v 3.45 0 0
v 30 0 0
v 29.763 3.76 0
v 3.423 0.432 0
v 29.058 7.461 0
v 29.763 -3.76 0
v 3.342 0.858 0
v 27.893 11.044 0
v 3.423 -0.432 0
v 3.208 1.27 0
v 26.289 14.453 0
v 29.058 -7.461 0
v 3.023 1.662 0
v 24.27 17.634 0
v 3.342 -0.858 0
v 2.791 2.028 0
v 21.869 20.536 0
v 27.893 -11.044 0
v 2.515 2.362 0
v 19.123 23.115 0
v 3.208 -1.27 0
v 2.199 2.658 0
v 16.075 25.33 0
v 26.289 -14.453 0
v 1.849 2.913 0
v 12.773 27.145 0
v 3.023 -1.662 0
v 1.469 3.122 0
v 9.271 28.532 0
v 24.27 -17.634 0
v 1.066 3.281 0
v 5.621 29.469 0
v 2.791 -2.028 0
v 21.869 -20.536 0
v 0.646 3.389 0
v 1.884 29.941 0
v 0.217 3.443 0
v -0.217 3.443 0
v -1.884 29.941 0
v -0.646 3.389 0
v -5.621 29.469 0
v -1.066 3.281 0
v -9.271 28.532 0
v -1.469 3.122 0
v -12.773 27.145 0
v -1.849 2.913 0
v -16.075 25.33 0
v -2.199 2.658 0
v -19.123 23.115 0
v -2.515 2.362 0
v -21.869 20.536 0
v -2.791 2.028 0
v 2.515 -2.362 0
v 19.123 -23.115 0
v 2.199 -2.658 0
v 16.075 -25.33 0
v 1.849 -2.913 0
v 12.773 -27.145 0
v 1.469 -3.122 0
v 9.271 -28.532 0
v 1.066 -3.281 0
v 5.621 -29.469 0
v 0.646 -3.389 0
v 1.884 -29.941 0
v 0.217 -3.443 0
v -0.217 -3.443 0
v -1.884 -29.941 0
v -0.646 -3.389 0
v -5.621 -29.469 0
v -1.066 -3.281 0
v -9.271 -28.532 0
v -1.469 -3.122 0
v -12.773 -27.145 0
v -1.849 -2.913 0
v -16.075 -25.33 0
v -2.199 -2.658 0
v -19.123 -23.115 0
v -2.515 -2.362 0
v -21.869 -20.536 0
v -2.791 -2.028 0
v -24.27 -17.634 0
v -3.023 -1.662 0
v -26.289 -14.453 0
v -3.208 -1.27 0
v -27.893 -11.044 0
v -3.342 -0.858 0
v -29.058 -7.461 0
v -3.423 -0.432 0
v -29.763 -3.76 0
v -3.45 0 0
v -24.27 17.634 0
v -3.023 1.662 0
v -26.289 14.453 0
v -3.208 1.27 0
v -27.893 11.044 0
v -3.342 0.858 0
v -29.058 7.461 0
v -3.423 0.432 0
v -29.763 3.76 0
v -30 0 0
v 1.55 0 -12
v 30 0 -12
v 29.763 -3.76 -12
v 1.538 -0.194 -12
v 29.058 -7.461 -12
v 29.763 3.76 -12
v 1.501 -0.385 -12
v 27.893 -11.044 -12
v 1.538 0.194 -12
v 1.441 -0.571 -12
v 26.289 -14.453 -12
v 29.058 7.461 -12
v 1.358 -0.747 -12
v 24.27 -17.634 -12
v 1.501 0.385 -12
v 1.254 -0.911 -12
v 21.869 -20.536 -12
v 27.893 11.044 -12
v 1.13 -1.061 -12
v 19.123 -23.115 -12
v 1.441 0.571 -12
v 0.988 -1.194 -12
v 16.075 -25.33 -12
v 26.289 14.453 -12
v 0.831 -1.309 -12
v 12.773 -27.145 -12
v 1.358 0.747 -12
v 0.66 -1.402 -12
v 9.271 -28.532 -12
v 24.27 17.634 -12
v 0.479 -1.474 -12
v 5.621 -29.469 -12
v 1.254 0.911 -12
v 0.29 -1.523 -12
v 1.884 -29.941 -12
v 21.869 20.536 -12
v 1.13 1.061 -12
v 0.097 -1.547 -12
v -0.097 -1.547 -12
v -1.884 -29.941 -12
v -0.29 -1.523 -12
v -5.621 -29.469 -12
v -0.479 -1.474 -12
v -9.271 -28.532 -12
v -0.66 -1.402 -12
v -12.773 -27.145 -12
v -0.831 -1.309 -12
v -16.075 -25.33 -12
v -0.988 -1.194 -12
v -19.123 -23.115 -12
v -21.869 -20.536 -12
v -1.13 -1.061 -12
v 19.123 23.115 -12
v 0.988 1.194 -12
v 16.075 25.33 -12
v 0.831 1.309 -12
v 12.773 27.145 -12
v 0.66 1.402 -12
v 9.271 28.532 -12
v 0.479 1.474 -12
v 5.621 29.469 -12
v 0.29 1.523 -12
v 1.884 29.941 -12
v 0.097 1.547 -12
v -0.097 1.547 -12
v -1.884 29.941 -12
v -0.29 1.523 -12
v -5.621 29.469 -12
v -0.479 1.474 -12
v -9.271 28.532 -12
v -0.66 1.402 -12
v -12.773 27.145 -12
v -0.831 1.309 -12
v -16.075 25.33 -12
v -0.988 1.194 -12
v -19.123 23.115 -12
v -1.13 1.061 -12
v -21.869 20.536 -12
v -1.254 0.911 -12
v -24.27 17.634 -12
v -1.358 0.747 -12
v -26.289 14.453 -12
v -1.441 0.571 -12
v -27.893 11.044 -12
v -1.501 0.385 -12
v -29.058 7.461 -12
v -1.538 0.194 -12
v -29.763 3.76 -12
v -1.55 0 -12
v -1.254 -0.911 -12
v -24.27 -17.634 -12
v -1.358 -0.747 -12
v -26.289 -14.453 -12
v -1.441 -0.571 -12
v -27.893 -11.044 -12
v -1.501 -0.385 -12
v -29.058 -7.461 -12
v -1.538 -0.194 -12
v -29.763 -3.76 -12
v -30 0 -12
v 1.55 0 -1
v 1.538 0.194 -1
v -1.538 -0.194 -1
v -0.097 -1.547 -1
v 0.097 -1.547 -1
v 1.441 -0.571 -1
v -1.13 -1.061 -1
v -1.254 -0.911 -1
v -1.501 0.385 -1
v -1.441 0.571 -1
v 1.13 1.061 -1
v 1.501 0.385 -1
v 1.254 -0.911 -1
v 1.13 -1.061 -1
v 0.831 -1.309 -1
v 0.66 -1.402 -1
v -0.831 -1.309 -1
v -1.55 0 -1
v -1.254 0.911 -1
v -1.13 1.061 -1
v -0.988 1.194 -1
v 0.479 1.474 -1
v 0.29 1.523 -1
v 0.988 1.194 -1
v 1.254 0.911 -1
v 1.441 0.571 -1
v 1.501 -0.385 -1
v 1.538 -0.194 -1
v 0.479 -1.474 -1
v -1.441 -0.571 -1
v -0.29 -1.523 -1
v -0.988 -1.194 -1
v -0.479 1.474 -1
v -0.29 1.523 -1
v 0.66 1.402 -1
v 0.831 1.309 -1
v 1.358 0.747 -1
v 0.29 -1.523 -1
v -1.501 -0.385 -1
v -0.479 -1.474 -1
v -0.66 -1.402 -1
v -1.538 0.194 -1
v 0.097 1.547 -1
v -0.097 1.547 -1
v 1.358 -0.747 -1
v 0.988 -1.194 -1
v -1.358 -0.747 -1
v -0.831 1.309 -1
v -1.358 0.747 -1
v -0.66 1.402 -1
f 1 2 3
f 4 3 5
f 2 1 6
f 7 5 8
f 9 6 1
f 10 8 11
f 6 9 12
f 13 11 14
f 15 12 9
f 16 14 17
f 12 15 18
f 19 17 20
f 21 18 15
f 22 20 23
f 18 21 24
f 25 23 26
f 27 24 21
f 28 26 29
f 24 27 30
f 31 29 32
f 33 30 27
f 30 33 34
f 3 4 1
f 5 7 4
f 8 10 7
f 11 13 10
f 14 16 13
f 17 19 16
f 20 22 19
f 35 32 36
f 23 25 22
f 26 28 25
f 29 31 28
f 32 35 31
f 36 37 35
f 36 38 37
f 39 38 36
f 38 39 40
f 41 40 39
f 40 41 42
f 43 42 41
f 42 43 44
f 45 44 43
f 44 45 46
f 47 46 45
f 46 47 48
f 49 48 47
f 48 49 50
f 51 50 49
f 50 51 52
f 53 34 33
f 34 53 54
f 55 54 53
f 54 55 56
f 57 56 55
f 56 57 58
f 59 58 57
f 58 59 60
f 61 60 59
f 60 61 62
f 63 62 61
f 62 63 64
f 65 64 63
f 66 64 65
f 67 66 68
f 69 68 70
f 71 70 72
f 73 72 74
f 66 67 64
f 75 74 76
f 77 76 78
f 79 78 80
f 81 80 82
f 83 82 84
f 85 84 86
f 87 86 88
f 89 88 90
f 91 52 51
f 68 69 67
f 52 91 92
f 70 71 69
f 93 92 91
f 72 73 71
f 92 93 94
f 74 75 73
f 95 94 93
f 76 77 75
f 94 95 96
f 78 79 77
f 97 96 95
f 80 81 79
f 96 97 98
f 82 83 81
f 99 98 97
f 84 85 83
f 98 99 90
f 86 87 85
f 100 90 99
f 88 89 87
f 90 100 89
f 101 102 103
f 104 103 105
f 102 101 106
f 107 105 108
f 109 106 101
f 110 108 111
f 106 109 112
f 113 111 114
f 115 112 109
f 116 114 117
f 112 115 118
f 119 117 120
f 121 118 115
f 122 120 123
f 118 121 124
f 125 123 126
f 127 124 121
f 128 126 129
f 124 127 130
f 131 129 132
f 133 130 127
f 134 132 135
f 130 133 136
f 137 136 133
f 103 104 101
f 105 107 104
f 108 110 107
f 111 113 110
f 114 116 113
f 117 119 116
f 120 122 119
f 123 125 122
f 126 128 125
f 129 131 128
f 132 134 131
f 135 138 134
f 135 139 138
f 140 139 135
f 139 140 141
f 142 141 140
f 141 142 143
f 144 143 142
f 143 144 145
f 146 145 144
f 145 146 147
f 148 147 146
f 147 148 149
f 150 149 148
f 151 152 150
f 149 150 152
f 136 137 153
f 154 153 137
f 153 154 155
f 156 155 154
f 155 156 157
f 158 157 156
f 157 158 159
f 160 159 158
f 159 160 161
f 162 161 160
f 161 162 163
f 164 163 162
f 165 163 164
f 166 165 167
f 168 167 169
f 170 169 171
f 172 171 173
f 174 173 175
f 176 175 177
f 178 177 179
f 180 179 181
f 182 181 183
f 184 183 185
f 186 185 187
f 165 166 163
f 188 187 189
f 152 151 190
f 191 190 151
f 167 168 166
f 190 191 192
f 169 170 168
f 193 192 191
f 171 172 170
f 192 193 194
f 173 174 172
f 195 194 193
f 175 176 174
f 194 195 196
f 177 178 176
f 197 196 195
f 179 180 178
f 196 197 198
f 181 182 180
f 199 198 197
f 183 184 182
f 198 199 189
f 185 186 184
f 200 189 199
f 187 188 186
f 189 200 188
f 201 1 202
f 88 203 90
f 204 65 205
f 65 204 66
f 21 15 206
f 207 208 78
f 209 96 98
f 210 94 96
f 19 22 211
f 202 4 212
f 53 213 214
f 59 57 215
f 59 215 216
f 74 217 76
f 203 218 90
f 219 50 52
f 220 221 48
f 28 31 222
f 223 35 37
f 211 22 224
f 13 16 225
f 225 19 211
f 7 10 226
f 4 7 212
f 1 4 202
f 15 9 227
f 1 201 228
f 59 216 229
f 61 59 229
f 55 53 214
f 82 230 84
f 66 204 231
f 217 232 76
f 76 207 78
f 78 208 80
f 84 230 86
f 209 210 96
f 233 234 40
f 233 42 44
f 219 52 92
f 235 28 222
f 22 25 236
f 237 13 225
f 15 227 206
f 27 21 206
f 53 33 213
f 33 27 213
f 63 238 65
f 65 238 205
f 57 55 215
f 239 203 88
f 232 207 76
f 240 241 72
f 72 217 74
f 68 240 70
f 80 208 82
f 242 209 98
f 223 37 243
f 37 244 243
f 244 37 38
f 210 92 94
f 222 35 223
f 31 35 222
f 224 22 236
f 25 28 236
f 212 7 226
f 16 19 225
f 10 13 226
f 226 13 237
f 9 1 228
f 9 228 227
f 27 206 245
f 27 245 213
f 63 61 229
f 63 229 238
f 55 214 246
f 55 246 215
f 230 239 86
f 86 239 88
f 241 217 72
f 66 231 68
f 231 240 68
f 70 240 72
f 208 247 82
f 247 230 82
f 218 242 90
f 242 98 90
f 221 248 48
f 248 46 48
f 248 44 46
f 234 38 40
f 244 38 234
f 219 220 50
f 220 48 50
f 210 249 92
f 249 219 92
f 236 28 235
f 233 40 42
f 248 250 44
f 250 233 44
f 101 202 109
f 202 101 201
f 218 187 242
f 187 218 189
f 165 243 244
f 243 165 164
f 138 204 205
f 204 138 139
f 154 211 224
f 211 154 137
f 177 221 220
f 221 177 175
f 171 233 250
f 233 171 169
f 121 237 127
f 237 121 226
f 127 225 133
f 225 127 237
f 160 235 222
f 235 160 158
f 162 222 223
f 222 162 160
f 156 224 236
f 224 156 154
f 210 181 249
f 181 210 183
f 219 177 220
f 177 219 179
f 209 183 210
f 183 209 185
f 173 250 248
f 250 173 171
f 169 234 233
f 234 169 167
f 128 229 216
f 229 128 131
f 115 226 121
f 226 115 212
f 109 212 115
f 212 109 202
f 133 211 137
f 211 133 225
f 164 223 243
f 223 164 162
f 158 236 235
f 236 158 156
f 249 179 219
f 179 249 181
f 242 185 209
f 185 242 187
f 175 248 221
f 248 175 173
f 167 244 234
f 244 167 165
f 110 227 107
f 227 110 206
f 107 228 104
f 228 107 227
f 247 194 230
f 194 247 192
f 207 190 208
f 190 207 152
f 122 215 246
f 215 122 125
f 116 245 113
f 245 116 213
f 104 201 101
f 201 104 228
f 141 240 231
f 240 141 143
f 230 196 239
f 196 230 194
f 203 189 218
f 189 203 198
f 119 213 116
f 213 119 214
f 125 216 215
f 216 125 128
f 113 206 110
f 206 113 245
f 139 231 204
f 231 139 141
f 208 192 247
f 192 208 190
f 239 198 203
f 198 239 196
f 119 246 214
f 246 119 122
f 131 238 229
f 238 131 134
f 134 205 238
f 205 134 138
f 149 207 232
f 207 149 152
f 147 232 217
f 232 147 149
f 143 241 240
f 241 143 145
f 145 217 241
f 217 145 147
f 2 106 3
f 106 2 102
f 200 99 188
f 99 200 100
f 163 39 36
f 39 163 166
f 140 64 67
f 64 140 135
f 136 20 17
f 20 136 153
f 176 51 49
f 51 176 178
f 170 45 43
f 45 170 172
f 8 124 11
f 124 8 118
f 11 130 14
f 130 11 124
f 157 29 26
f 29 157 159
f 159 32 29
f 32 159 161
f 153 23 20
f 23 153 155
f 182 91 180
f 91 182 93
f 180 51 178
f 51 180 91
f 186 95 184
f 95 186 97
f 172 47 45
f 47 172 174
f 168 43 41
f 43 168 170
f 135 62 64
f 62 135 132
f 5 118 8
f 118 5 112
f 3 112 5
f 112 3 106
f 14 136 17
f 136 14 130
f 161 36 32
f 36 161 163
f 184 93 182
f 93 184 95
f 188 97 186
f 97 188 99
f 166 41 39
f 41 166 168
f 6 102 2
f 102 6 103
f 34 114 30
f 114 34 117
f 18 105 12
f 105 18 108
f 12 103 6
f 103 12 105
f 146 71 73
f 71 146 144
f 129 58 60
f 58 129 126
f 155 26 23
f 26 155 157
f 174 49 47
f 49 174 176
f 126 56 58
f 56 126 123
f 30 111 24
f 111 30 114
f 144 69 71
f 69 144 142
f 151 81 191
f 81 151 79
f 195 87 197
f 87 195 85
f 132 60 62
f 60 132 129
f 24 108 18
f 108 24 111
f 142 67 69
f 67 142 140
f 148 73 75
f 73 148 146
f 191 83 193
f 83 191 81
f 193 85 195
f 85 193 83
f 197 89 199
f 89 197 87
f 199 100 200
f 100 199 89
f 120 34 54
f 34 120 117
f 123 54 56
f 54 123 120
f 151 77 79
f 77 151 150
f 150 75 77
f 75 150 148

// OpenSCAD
$fn = 50;


difference() {
	union() {
		translate(v = [0, 0, -12.0000000000]) {
			cylinder(h = 12, r = 30.0000000000);
		}
	}
	union() {
		translate(v = [0, 0, 0]) {
			rotate(a = [0, 0, 0]) {
				difference() {
					union() {
						translate(v = [0, 0, -12.0000000000]) {
							cylinder(h = 12, r = 1.2500000000);
						}
						translate(v = [0, 0, -1.0000000000]) {
							cylinder(h = 1.0000000000, r1 = 1.5500000000, r2 = 3.4500000000);
						}
						translate(v = [0, 0, -12.0000000000]) {
							cylinder(h = 12, r = 1.5500000000);
						}
						translate(v = [0, 0, -12.0000000000]) {
							cylinder(h = 12, r = 1.2500000000);
						}
					}
					union();
				}
			}
		}
	}
}
